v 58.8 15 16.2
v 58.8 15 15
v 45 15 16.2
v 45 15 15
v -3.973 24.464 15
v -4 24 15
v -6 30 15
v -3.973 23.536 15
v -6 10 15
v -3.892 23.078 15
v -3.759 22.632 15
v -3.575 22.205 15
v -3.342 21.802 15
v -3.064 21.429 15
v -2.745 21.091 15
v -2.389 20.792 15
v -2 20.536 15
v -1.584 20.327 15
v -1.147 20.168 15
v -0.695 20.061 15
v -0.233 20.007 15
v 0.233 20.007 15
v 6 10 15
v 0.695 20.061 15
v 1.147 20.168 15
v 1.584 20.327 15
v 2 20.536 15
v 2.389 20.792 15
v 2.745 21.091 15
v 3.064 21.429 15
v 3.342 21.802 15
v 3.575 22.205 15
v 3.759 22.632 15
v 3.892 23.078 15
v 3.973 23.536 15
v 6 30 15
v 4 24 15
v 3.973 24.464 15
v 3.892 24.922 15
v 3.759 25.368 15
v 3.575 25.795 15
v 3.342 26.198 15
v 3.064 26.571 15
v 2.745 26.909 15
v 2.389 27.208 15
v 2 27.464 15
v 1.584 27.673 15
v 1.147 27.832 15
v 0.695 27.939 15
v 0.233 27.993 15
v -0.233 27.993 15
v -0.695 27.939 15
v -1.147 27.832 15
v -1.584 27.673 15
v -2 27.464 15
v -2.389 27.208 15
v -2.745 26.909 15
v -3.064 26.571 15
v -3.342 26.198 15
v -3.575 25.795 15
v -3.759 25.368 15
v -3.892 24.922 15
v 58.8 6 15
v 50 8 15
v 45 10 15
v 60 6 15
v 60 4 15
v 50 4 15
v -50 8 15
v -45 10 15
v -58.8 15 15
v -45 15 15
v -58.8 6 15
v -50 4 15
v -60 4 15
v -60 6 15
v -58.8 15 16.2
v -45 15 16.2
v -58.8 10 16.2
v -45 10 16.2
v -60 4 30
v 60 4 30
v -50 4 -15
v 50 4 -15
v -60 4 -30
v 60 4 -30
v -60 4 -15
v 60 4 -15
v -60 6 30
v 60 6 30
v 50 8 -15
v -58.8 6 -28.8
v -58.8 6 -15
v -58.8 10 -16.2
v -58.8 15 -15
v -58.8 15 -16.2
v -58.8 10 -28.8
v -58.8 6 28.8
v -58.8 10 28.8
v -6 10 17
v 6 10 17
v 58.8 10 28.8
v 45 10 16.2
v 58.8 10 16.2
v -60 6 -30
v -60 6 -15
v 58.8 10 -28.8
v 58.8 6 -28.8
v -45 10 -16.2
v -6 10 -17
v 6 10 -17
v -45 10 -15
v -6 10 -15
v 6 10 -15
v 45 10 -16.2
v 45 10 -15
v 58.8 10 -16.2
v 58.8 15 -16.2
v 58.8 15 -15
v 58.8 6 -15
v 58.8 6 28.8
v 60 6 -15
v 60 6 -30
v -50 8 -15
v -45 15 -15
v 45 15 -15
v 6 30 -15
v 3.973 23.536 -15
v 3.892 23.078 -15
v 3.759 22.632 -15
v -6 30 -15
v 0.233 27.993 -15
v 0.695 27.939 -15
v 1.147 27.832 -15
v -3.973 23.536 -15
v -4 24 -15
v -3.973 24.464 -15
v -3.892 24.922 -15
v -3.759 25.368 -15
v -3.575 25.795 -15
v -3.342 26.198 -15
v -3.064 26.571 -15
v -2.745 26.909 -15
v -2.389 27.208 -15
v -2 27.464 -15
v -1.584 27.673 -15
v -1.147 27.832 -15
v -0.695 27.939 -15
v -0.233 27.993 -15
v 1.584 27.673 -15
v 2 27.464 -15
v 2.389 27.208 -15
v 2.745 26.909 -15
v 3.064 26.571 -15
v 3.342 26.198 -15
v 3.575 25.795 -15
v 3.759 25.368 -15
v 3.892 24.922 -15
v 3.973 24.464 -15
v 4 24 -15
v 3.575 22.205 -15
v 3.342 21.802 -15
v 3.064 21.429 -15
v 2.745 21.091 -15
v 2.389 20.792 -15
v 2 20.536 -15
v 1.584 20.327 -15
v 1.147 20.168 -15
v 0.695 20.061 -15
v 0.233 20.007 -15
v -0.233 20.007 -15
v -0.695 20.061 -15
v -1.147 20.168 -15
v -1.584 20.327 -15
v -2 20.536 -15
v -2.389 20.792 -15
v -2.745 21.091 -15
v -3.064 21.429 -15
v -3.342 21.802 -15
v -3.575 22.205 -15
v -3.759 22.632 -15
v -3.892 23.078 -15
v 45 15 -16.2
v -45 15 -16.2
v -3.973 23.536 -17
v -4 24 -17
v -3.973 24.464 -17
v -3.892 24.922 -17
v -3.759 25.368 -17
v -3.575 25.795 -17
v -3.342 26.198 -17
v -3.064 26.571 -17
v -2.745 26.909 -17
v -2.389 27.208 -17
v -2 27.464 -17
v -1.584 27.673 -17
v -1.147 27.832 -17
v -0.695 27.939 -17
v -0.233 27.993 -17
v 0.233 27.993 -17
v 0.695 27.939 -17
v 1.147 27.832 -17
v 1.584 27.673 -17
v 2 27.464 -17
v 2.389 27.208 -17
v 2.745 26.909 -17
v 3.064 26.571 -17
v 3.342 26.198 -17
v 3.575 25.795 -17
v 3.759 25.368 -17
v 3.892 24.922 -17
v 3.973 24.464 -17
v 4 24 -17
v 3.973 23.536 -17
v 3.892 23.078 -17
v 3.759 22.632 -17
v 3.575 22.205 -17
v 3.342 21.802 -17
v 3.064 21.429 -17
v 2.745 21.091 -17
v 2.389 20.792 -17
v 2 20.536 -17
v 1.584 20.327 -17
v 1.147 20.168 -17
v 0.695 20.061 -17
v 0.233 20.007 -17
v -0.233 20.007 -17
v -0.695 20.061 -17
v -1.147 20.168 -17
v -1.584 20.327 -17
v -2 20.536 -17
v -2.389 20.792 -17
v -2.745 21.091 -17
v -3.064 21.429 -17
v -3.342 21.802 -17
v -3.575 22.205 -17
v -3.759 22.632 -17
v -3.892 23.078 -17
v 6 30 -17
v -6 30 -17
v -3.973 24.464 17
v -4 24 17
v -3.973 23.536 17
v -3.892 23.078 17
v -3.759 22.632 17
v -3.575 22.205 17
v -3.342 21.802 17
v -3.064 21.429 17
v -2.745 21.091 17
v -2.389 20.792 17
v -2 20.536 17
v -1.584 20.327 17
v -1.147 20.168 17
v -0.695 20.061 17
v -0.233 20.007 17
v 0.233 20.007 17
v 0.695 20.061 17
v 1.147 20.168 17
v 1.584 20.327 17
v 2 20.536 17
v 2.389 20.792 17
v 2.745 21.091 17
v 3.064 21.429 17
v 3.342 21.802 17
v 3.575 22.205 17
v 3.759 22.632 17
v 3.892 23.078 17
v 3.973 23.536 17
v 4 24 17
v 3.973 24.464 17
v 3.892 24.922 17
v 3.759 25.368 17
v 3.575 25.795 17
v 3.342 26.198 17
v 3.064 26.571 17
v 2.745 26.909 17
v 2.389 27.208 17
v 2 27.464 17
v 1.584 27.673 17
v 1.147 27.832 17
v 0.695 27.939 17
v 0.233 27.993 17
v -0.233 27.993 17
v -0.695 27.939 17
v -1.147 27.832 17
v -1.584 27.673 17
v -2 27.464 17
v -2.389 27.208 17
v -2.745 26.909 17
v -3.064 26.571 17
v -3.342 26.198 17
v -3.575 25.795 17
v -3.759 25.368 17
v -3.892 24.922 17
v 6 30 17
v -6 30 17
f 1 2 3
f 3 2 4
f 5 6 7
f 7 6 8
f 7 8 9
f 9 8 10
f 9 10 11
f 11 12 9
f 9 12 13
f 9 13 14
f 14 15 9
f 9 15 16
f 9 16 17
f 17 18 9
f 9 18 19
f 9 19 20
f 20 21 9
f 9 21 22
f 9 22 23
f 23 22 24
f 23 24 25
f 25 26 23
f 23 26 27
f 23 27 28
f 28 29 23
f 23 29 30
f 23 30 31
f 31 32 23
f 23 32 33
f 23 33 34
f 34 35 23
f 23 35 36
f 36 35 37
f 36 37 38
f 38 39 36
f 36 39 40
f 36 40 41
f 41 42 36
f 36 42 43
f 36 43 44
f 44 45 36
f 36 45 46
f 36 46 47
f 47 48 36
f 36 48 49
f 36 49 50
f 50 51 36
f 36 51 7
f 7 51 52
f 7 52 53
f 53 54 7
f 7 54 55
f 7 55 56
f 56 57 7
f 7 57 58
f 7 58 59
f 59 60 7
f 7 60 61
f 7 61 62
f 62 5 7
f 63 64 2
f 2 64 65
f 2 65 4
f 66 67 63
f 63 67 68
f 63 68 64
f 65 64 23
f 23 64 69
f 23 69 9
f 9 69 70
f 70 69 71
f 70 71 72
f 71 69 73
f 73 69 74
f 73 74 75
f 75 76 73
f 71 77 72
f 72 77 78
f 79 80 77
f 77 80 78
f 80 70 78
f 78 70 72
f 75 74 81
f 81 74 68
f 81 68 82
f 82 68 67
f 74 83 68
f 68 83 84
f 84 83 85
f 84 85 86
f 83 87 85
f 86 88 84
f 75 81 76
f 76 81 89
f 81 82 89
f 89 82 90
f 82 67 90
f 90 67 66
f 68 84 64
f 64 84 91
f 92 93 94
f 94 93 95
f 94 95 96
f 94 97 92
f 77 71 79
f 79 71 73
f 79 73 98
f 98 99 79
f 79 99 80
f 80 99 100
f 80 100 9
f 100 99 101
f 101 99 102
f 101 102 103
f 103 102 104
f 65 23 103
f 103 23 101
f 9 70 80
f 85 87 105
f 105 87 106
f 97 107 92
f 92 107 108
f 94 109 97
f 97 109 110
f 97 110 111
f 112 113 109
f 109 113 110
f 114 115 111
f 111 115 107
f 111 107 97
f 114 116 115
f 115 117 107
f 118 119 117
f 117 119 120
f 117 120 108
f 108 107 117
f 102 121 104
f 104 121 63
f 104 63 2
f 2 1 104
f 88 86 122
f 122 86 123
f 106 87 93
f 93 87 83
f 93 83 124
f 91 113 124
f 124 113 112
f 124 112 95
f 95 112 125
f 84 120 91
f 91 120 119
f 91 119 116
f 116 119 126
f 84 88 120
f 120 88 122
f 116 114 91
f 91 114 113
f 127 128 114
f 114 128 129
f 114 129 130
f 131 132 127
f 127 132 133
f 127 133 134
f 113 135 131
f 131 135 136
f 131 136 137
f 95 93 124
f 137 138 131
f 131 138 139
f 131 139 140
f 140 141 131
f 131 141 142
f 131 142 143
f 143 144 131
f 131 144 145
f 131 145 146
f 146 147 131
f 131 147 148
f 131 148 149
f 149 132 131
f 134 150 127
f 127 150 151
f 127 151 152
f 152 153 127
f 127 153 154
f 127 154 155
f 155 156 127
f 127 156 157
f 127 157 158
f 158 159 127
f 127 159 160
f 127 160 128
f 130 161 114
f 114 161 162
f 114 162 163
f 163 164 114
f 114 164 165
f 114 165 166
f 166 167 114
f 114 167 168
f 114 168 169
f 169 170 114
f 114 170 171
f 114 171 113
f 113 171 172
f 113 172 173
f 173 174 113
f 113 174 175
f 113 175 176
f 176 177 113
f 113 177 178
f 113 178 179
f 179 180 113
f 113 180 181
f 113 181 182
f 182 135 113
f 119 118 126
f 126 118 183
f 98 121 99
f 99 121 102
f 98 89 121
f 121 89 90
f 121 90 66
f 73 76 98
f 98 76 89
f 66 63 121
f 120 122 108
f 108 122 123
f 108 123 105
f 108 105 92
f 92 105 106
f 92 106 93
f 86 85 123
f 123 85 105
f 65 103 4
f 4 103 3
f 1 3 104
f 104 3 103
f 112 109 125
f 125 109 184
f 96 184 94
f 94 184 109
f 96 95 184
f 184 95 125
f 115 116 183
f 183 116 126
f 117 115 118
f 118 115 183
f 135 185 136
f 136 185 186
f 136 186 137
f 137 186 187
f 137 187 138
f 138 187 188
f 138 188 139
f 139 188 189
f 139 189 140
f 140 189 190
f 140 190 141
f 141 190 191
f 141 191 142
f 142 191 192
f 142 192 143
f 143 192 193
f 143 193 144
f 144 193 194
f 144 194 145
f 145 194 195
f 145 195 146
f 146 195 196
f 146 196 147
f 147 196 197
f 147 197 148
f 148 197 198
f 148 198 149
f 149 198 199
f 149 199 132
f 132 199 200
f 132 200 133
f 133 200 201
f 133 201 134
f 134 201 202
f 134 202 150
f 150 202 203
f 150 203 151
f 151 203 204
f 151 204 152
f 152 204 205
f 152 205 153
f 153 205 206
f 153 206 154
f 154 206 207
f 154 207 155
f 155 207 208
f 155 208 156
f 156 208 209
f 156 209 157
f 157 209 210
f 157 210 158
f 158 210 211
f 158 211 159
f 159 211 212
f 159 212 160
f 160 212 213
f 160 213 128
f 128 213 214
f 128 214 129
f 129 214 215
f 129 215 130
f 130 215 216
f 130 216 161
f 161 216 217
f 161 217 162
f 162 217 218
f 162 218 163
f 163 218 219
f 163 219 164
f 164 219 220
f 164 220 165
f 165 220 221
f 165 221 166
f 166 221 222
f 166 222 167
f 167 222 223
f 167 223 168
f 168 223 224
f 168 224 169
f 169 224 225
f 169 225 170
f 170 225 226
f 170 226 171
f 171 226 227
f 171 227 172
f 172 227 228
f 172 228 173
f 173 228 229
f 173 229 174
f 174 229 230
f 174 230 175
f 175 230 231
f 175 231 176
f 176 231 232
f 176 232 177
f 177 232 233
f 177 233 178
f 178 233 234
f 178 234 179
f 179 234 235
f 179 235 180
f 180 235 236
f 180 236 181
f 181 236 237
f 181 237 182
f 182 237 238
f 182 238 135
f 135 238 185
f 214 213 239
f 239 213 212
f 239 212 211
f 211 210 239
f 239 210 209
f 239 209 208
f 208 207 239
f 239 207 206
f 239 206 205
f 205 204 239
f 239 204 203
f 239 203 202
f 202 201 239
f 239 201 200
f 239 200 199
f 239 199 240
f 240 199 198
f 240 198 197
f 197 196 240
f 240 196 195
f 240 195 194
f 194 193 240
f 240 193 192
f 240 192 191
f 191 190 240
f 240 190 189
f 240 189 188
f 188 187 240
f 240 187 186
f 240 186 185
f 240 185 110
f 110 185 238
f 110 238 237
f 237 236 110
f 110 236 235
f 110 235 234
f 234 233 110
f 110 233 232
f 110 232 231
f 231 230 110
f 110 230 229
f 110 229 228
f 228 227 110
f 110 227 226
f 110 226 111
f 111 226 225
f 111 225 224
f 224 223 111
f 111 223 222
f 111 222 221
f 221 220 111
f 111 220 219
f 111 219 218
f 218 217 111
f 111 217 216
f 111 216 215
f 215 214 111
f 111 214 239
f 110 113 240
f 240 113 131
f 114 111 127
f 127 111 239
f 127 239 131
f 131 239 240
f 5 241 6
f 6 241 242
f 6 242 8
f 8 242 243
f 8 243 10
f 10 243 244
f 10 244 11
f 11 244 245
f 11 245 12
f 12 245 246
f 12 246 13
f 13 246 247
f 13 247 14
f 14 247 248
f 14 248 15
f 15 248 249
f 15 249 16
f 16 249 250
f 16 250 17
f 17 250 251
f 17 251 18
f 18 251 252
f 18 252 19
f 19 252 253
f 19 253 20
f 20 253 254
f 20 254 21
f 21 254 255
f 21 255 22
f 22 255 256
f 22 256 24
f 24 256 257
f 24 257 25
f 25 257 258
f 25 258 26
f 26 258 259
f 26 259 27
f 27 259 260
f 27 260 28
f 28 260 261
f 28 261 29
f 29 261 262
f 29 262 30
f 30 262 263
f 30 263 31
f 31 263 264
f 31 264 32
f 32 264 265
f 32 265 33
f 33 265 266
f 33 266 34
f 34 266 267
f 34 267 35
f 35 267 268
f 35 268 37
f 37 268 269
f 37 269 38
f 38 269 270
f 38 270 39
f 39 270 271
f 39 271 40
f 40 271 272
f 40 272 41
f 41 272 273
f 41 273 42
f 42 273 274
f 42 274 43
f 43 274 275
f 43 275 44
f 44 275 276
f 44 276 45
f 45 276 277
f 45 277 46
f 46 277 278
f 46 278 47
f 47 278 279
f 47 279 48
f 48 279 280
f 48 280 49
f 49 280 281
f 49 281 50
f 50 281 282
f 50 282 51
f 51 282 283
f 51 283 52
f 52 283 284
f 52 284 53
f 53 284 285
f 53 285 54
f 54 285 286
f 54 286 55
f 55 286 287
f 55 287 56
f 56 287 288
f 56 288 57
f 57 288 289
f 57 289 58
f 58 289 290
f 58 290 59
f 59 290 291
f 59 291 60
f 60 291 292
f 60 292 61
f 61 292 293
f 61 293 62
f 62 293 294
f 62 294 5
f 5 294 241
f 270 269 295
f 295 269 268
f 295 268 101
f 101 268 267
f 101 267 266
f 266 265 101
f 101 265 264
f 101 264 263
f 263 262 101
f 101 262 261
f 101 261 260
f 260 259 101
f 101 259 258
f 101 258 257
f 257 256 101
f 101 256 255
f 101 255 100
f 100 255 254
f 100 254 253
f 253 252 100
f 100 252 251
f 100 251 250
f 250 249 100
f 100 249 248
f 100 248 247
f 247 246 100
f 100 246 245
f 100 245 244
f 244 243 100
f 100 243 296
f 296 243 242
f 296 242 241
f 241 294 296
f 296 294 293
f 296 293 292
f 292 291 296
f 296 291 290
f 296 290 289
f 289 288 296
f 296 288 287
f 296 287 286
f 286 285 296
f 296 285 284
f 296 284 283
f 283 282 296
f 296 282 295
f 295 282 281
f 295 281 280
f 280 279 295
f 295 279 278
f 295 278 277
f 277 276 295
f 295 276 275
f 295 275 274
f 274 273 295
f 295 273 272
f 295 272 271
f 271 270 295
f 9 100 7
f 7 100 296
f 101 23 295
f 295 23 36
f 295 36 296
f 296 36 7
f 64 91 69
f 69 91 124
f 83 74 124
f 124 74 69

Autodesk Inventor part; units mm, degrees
ref_plane "YZ Plane" through (0, 0, 0) normal (1, 0, 0) x (0, 1, 0)
ref_plane "XZ Plane" through (0, 0, 0) normal (0, 1, 0) x (-1, 0, 0)
ref_plane "XY Plane" through (0, 0, 0) normal (0, 0, 1) x (1, 0, 0)
sketch "Szkic1" plane through (0, 0, 0) normal (0, 1, 0) x (-1, 0, 0)
  point P0 (0, 0)
sketch "Szkic2" plane through (0, 0, 0) normal (0, 1, 0) x (-1, 0, 0)
  line L0 (60, -30) -> (-60, -30)
  line L1 (-60, -30) -> (-60, 30)
  line L2 (-60, 30) -> (60, 30)
  line L3 (60, 30) -> (60, -30)
  line L4 (60, -30) -> (-60, 30) construction
  line L5 (-60, -30) -> (60, 30) construction
  point P0 (0, 0)
  dimension "d0" = 120
  dimension "d1" = 60
extrude "Wyciągnięcie proste1" add sketch "Szkic2" along normal blind 10
sketch "Szkic3" plane through (0, 10, 0) normal (0, 1, 0) x (1, 0, 0)
  line L0 (0, 0) -> (50, 0)
  line L1 (60, -30) -> (60, 30) projected
  line L2 (50, 0) -> (60, 0)
  line L3 (60, 0) -> (60, 15)
  line L4 (60, 15) -> (50, 15)
  line L5 (50, 15) -> (50, 0)
  dimension "d4" = 50
  dimension "d5" = 15
extrude "Wyciągnięcie proste2" cut sketch "Szkic3" against normal blind 10
mirror "Odbij1" about plane through (0, 0, 0) normal (0, 0, 1) of "Wyciągnięcie proste2"
mirror "Odbij2" about plane through (0, 0, 0) normal (1, 0, 0) of "Wyciągnięcie proste2"
mirror "Odbij3" about plane through (0, 0, 0) normal (0, 0, 1) of "Wyciągnięcie proste2", "Odbij2"
sketch "Szkic4" plane through (0, 10, 0) normal (0, 1, 0) x (1, 0, 0)
  line L0 (-50, 15) -> (50, 15)
  line L1 (50, 15) -> (50, -15)
  line L2 (50, -15) -> (-50, -15)
  line L3 (-50, -15) -> (-50, 15)
  line L4 (-50, 15) -> (50, -15) construction
  line L5 (50, 15) -> (-50, -15) construction
  point P0 (0, 0)
extrude "Wyciągnięcie proste3" cut sketch "Szkic4" against normal blind 2
sketch "Szkic5" plane through (0, 10, 0) normal (0, 1, 0) x (1, 0, 0)
  line L0 (0, 0) -> (0, -16)
  line L1 (50, -15) -> (-50, -15) projected
  line L2 (0, 0) -> (16, 0) construction
  line L3 (-6, -15) -> (6, -15)
  line L4 (6, -15) -> (6, -17)
  line L5 (6, -17) -> (-6, -17)
  line L6 (-6, -17) -> (-6, -15)
  line L7 (-6, -15) -> (6, -17) construction
  line L8 (6, -15) -> (-6, -17) construction
  dimension "d10" = 16
  dimension "d11" = 90
  dimension "d12" = 12
  dimension "d13" = 2
extrude "Wyciągnięcie proste4" add sketch "Szkic5" along normal blind 20
sketch "Szkic6" plane through (-6, 10, 17) normal (0, 0, 1) x (1, 0, 0)
  point P0 (6, -10)
sketch "Szkic7" plane through (-6, 10, 17) normal (0, 0, 1) x (1, 0, 0)
  line L0 (12, 20) -> (0, 20) projected
  line L1 (6, 20) -> (6, 14)
  line L2 (6, 20) -> (12, 20) construction
  circle A0 centre (6, 14) radius 4
  point P0 (6, -10)
  dimension "d16" = 6
  dimension "d17" = 90
  dimension "d18" = 8
extrude "Wyciągnięcie proste5" cut sketch "Szkic7" against normal through all
sketch "Szkic8" plane through (0, 10, 0) normal (0, 1, 0) x (1, 0, 0)
  point P0 (0, 0)
mirror "Odbij4" about plane through (0, 0, 0) normal (0, 0, 1) of "Wyciągnięcie proste4", "Wyciągnięcie proste5"
sketch "Szkic9" plane through (0, 10, 0) normal (0, 1, 0) x (1, 0, 0)
  line L0 (6, 15) -> (60, 15) projected
  line L1 (60, 15) -> (45, 15)
  line L2 (45, 15) -> (45, 16.2)
  line L3 (45, 16.2) -> (60, 16.2)
  line L4 (60, 16.2) -> (60, 15)
  point P0 (0, 0)
  dimension "d21" = 15
  dimension "d22" = 1.2
extrude "Wyciągnięcie proste6" add sketch "Szkic9" along normal blind 5
mirror "Odbij5" about plane through (0, 0, 0) normal (1, 0, 0) of "Wyciągnięcie proste6"
mirror "Odbij6" about plane through (0, 0, 0) normal (0, 0, 1) of "Wyciągnięcie proste6"
sketch "Szkic10" plane through (0, 10, 0) normal (0, 1, 0) x (1, 0, 0)
  line L0 (60, 30) -> (-60, 30) projected
  line L1 (60, 15) -> (60, 30) projected
  line L2 (-60, 30) -> (60, 30)
  line L3 (60, 30) -> (60, 28.8)
  line L4 (60, 28.8) -> (-60, 28.8)
  line L5 (-60, 28.8) -> (-60, 30)
  point P0 (0, 0)
  dimension "d25" = 1.2
extrude "Wyciągnięcie proste7" cut sketch "Szkic10" against normal blind 4
mirror "Odbij7" about plane through (0, 0, 0) normal (0, 0, 1) of "Wyciągnięcie proste7"
sketch "Szkic11" plane through (0, 10, 0) normal (0, 1, 0) x (1, 0, 0)
  point P0 (0, 0)
sketch "Szkic12" plane through (0, 15, 0) normal (0, 1, 0) x (1, 0, 0)
  line L0 (60, 28.8) -> (-60, 28.8) projected
  line L1 (-60, -28.8) -> (60, -28.8) projected
  line L2 (60, 28.8) -> (58.8, 28.8)
  line L3 (58.8, 28.8) -> (58.8, -28.8)
  line L4 (58.8, -28.8) -> (60, -28.8)
  line L5 (60, -28.8) -> (60, 28.8)
  point P0 (0, 0)
  dimension "d28" = 1.2
extrude "Wyciągnięcie proste8" cut sketch "Szkic12" against normal up to surface (9 mm away)
mirror "Odbij8" about plane through (0, 0, 0) normal (1, 0, 0) of "Wyciągnięcie proste8"
sketch "Szkic13" plane through (0, 0, 0) normal (0, -1, 0) x (1, 0, 0)
  line L0 (60, -30) -> (-60, -30) projected
  line L1 (60, -30) -> (-60, -30)
  line L2 (-60, -30) -> (-60, 30)
  line L3 (-60, 30) -> (60, 30)
  line L4 (60, 30) -> (60, -30)
  point P0 (0, 0)
extrude "Wyciągnięcie proste9" cut sketch "Szkic13" against normal blind 4
mirror "Odbij9" about plane through (0, 0, 0) normal (0, 0, 1) of "Wyciągnięcie proste6", "Odbij5"
sketch "Szkic14" plane through (-60, 10, 15) normal (-1, 0, 0) x (0, 0, 1)
  line L0 (1.2, 0) -> (1.2, 5) projected
  line L1 (0, 0) -> (0, 20) projected
  line L2 (1.2, 5) -> (0, 5)
  line L3 (0, 5) -> (0, 0)
  line L4 (0, 0) -> (1.2, 0)
  line L5 (1.2, 0) -> (1.2, 5)
  point P0 (-15, -10)
extrude "Wyciągnięcie proste10" cut sketch "Szkic14" against normal up to surface (1.2 mm away)
sketch "Szkic15" plane through (58.8, 10, 15) normal (0, -1, 0) x (1, 0, 0)
  line L0 (1.2, 1.2) -> (-13.8, 1.2) projected
  line L1 (0, 0) -> (1.2, 0)
  line L2 (1.2, 0) -> (1.2, 1.2)
  line L3 (1.2, 1.2) -> (0, 1.2)
  line L4 (0, 1.2) -> (0, 0)
  point P0 (-58.8, -15)
extrude "Wyciągnięcie proste11" cut sketch "Szkic15" against normal blind 10
properties part number "podstawka_pelna"
